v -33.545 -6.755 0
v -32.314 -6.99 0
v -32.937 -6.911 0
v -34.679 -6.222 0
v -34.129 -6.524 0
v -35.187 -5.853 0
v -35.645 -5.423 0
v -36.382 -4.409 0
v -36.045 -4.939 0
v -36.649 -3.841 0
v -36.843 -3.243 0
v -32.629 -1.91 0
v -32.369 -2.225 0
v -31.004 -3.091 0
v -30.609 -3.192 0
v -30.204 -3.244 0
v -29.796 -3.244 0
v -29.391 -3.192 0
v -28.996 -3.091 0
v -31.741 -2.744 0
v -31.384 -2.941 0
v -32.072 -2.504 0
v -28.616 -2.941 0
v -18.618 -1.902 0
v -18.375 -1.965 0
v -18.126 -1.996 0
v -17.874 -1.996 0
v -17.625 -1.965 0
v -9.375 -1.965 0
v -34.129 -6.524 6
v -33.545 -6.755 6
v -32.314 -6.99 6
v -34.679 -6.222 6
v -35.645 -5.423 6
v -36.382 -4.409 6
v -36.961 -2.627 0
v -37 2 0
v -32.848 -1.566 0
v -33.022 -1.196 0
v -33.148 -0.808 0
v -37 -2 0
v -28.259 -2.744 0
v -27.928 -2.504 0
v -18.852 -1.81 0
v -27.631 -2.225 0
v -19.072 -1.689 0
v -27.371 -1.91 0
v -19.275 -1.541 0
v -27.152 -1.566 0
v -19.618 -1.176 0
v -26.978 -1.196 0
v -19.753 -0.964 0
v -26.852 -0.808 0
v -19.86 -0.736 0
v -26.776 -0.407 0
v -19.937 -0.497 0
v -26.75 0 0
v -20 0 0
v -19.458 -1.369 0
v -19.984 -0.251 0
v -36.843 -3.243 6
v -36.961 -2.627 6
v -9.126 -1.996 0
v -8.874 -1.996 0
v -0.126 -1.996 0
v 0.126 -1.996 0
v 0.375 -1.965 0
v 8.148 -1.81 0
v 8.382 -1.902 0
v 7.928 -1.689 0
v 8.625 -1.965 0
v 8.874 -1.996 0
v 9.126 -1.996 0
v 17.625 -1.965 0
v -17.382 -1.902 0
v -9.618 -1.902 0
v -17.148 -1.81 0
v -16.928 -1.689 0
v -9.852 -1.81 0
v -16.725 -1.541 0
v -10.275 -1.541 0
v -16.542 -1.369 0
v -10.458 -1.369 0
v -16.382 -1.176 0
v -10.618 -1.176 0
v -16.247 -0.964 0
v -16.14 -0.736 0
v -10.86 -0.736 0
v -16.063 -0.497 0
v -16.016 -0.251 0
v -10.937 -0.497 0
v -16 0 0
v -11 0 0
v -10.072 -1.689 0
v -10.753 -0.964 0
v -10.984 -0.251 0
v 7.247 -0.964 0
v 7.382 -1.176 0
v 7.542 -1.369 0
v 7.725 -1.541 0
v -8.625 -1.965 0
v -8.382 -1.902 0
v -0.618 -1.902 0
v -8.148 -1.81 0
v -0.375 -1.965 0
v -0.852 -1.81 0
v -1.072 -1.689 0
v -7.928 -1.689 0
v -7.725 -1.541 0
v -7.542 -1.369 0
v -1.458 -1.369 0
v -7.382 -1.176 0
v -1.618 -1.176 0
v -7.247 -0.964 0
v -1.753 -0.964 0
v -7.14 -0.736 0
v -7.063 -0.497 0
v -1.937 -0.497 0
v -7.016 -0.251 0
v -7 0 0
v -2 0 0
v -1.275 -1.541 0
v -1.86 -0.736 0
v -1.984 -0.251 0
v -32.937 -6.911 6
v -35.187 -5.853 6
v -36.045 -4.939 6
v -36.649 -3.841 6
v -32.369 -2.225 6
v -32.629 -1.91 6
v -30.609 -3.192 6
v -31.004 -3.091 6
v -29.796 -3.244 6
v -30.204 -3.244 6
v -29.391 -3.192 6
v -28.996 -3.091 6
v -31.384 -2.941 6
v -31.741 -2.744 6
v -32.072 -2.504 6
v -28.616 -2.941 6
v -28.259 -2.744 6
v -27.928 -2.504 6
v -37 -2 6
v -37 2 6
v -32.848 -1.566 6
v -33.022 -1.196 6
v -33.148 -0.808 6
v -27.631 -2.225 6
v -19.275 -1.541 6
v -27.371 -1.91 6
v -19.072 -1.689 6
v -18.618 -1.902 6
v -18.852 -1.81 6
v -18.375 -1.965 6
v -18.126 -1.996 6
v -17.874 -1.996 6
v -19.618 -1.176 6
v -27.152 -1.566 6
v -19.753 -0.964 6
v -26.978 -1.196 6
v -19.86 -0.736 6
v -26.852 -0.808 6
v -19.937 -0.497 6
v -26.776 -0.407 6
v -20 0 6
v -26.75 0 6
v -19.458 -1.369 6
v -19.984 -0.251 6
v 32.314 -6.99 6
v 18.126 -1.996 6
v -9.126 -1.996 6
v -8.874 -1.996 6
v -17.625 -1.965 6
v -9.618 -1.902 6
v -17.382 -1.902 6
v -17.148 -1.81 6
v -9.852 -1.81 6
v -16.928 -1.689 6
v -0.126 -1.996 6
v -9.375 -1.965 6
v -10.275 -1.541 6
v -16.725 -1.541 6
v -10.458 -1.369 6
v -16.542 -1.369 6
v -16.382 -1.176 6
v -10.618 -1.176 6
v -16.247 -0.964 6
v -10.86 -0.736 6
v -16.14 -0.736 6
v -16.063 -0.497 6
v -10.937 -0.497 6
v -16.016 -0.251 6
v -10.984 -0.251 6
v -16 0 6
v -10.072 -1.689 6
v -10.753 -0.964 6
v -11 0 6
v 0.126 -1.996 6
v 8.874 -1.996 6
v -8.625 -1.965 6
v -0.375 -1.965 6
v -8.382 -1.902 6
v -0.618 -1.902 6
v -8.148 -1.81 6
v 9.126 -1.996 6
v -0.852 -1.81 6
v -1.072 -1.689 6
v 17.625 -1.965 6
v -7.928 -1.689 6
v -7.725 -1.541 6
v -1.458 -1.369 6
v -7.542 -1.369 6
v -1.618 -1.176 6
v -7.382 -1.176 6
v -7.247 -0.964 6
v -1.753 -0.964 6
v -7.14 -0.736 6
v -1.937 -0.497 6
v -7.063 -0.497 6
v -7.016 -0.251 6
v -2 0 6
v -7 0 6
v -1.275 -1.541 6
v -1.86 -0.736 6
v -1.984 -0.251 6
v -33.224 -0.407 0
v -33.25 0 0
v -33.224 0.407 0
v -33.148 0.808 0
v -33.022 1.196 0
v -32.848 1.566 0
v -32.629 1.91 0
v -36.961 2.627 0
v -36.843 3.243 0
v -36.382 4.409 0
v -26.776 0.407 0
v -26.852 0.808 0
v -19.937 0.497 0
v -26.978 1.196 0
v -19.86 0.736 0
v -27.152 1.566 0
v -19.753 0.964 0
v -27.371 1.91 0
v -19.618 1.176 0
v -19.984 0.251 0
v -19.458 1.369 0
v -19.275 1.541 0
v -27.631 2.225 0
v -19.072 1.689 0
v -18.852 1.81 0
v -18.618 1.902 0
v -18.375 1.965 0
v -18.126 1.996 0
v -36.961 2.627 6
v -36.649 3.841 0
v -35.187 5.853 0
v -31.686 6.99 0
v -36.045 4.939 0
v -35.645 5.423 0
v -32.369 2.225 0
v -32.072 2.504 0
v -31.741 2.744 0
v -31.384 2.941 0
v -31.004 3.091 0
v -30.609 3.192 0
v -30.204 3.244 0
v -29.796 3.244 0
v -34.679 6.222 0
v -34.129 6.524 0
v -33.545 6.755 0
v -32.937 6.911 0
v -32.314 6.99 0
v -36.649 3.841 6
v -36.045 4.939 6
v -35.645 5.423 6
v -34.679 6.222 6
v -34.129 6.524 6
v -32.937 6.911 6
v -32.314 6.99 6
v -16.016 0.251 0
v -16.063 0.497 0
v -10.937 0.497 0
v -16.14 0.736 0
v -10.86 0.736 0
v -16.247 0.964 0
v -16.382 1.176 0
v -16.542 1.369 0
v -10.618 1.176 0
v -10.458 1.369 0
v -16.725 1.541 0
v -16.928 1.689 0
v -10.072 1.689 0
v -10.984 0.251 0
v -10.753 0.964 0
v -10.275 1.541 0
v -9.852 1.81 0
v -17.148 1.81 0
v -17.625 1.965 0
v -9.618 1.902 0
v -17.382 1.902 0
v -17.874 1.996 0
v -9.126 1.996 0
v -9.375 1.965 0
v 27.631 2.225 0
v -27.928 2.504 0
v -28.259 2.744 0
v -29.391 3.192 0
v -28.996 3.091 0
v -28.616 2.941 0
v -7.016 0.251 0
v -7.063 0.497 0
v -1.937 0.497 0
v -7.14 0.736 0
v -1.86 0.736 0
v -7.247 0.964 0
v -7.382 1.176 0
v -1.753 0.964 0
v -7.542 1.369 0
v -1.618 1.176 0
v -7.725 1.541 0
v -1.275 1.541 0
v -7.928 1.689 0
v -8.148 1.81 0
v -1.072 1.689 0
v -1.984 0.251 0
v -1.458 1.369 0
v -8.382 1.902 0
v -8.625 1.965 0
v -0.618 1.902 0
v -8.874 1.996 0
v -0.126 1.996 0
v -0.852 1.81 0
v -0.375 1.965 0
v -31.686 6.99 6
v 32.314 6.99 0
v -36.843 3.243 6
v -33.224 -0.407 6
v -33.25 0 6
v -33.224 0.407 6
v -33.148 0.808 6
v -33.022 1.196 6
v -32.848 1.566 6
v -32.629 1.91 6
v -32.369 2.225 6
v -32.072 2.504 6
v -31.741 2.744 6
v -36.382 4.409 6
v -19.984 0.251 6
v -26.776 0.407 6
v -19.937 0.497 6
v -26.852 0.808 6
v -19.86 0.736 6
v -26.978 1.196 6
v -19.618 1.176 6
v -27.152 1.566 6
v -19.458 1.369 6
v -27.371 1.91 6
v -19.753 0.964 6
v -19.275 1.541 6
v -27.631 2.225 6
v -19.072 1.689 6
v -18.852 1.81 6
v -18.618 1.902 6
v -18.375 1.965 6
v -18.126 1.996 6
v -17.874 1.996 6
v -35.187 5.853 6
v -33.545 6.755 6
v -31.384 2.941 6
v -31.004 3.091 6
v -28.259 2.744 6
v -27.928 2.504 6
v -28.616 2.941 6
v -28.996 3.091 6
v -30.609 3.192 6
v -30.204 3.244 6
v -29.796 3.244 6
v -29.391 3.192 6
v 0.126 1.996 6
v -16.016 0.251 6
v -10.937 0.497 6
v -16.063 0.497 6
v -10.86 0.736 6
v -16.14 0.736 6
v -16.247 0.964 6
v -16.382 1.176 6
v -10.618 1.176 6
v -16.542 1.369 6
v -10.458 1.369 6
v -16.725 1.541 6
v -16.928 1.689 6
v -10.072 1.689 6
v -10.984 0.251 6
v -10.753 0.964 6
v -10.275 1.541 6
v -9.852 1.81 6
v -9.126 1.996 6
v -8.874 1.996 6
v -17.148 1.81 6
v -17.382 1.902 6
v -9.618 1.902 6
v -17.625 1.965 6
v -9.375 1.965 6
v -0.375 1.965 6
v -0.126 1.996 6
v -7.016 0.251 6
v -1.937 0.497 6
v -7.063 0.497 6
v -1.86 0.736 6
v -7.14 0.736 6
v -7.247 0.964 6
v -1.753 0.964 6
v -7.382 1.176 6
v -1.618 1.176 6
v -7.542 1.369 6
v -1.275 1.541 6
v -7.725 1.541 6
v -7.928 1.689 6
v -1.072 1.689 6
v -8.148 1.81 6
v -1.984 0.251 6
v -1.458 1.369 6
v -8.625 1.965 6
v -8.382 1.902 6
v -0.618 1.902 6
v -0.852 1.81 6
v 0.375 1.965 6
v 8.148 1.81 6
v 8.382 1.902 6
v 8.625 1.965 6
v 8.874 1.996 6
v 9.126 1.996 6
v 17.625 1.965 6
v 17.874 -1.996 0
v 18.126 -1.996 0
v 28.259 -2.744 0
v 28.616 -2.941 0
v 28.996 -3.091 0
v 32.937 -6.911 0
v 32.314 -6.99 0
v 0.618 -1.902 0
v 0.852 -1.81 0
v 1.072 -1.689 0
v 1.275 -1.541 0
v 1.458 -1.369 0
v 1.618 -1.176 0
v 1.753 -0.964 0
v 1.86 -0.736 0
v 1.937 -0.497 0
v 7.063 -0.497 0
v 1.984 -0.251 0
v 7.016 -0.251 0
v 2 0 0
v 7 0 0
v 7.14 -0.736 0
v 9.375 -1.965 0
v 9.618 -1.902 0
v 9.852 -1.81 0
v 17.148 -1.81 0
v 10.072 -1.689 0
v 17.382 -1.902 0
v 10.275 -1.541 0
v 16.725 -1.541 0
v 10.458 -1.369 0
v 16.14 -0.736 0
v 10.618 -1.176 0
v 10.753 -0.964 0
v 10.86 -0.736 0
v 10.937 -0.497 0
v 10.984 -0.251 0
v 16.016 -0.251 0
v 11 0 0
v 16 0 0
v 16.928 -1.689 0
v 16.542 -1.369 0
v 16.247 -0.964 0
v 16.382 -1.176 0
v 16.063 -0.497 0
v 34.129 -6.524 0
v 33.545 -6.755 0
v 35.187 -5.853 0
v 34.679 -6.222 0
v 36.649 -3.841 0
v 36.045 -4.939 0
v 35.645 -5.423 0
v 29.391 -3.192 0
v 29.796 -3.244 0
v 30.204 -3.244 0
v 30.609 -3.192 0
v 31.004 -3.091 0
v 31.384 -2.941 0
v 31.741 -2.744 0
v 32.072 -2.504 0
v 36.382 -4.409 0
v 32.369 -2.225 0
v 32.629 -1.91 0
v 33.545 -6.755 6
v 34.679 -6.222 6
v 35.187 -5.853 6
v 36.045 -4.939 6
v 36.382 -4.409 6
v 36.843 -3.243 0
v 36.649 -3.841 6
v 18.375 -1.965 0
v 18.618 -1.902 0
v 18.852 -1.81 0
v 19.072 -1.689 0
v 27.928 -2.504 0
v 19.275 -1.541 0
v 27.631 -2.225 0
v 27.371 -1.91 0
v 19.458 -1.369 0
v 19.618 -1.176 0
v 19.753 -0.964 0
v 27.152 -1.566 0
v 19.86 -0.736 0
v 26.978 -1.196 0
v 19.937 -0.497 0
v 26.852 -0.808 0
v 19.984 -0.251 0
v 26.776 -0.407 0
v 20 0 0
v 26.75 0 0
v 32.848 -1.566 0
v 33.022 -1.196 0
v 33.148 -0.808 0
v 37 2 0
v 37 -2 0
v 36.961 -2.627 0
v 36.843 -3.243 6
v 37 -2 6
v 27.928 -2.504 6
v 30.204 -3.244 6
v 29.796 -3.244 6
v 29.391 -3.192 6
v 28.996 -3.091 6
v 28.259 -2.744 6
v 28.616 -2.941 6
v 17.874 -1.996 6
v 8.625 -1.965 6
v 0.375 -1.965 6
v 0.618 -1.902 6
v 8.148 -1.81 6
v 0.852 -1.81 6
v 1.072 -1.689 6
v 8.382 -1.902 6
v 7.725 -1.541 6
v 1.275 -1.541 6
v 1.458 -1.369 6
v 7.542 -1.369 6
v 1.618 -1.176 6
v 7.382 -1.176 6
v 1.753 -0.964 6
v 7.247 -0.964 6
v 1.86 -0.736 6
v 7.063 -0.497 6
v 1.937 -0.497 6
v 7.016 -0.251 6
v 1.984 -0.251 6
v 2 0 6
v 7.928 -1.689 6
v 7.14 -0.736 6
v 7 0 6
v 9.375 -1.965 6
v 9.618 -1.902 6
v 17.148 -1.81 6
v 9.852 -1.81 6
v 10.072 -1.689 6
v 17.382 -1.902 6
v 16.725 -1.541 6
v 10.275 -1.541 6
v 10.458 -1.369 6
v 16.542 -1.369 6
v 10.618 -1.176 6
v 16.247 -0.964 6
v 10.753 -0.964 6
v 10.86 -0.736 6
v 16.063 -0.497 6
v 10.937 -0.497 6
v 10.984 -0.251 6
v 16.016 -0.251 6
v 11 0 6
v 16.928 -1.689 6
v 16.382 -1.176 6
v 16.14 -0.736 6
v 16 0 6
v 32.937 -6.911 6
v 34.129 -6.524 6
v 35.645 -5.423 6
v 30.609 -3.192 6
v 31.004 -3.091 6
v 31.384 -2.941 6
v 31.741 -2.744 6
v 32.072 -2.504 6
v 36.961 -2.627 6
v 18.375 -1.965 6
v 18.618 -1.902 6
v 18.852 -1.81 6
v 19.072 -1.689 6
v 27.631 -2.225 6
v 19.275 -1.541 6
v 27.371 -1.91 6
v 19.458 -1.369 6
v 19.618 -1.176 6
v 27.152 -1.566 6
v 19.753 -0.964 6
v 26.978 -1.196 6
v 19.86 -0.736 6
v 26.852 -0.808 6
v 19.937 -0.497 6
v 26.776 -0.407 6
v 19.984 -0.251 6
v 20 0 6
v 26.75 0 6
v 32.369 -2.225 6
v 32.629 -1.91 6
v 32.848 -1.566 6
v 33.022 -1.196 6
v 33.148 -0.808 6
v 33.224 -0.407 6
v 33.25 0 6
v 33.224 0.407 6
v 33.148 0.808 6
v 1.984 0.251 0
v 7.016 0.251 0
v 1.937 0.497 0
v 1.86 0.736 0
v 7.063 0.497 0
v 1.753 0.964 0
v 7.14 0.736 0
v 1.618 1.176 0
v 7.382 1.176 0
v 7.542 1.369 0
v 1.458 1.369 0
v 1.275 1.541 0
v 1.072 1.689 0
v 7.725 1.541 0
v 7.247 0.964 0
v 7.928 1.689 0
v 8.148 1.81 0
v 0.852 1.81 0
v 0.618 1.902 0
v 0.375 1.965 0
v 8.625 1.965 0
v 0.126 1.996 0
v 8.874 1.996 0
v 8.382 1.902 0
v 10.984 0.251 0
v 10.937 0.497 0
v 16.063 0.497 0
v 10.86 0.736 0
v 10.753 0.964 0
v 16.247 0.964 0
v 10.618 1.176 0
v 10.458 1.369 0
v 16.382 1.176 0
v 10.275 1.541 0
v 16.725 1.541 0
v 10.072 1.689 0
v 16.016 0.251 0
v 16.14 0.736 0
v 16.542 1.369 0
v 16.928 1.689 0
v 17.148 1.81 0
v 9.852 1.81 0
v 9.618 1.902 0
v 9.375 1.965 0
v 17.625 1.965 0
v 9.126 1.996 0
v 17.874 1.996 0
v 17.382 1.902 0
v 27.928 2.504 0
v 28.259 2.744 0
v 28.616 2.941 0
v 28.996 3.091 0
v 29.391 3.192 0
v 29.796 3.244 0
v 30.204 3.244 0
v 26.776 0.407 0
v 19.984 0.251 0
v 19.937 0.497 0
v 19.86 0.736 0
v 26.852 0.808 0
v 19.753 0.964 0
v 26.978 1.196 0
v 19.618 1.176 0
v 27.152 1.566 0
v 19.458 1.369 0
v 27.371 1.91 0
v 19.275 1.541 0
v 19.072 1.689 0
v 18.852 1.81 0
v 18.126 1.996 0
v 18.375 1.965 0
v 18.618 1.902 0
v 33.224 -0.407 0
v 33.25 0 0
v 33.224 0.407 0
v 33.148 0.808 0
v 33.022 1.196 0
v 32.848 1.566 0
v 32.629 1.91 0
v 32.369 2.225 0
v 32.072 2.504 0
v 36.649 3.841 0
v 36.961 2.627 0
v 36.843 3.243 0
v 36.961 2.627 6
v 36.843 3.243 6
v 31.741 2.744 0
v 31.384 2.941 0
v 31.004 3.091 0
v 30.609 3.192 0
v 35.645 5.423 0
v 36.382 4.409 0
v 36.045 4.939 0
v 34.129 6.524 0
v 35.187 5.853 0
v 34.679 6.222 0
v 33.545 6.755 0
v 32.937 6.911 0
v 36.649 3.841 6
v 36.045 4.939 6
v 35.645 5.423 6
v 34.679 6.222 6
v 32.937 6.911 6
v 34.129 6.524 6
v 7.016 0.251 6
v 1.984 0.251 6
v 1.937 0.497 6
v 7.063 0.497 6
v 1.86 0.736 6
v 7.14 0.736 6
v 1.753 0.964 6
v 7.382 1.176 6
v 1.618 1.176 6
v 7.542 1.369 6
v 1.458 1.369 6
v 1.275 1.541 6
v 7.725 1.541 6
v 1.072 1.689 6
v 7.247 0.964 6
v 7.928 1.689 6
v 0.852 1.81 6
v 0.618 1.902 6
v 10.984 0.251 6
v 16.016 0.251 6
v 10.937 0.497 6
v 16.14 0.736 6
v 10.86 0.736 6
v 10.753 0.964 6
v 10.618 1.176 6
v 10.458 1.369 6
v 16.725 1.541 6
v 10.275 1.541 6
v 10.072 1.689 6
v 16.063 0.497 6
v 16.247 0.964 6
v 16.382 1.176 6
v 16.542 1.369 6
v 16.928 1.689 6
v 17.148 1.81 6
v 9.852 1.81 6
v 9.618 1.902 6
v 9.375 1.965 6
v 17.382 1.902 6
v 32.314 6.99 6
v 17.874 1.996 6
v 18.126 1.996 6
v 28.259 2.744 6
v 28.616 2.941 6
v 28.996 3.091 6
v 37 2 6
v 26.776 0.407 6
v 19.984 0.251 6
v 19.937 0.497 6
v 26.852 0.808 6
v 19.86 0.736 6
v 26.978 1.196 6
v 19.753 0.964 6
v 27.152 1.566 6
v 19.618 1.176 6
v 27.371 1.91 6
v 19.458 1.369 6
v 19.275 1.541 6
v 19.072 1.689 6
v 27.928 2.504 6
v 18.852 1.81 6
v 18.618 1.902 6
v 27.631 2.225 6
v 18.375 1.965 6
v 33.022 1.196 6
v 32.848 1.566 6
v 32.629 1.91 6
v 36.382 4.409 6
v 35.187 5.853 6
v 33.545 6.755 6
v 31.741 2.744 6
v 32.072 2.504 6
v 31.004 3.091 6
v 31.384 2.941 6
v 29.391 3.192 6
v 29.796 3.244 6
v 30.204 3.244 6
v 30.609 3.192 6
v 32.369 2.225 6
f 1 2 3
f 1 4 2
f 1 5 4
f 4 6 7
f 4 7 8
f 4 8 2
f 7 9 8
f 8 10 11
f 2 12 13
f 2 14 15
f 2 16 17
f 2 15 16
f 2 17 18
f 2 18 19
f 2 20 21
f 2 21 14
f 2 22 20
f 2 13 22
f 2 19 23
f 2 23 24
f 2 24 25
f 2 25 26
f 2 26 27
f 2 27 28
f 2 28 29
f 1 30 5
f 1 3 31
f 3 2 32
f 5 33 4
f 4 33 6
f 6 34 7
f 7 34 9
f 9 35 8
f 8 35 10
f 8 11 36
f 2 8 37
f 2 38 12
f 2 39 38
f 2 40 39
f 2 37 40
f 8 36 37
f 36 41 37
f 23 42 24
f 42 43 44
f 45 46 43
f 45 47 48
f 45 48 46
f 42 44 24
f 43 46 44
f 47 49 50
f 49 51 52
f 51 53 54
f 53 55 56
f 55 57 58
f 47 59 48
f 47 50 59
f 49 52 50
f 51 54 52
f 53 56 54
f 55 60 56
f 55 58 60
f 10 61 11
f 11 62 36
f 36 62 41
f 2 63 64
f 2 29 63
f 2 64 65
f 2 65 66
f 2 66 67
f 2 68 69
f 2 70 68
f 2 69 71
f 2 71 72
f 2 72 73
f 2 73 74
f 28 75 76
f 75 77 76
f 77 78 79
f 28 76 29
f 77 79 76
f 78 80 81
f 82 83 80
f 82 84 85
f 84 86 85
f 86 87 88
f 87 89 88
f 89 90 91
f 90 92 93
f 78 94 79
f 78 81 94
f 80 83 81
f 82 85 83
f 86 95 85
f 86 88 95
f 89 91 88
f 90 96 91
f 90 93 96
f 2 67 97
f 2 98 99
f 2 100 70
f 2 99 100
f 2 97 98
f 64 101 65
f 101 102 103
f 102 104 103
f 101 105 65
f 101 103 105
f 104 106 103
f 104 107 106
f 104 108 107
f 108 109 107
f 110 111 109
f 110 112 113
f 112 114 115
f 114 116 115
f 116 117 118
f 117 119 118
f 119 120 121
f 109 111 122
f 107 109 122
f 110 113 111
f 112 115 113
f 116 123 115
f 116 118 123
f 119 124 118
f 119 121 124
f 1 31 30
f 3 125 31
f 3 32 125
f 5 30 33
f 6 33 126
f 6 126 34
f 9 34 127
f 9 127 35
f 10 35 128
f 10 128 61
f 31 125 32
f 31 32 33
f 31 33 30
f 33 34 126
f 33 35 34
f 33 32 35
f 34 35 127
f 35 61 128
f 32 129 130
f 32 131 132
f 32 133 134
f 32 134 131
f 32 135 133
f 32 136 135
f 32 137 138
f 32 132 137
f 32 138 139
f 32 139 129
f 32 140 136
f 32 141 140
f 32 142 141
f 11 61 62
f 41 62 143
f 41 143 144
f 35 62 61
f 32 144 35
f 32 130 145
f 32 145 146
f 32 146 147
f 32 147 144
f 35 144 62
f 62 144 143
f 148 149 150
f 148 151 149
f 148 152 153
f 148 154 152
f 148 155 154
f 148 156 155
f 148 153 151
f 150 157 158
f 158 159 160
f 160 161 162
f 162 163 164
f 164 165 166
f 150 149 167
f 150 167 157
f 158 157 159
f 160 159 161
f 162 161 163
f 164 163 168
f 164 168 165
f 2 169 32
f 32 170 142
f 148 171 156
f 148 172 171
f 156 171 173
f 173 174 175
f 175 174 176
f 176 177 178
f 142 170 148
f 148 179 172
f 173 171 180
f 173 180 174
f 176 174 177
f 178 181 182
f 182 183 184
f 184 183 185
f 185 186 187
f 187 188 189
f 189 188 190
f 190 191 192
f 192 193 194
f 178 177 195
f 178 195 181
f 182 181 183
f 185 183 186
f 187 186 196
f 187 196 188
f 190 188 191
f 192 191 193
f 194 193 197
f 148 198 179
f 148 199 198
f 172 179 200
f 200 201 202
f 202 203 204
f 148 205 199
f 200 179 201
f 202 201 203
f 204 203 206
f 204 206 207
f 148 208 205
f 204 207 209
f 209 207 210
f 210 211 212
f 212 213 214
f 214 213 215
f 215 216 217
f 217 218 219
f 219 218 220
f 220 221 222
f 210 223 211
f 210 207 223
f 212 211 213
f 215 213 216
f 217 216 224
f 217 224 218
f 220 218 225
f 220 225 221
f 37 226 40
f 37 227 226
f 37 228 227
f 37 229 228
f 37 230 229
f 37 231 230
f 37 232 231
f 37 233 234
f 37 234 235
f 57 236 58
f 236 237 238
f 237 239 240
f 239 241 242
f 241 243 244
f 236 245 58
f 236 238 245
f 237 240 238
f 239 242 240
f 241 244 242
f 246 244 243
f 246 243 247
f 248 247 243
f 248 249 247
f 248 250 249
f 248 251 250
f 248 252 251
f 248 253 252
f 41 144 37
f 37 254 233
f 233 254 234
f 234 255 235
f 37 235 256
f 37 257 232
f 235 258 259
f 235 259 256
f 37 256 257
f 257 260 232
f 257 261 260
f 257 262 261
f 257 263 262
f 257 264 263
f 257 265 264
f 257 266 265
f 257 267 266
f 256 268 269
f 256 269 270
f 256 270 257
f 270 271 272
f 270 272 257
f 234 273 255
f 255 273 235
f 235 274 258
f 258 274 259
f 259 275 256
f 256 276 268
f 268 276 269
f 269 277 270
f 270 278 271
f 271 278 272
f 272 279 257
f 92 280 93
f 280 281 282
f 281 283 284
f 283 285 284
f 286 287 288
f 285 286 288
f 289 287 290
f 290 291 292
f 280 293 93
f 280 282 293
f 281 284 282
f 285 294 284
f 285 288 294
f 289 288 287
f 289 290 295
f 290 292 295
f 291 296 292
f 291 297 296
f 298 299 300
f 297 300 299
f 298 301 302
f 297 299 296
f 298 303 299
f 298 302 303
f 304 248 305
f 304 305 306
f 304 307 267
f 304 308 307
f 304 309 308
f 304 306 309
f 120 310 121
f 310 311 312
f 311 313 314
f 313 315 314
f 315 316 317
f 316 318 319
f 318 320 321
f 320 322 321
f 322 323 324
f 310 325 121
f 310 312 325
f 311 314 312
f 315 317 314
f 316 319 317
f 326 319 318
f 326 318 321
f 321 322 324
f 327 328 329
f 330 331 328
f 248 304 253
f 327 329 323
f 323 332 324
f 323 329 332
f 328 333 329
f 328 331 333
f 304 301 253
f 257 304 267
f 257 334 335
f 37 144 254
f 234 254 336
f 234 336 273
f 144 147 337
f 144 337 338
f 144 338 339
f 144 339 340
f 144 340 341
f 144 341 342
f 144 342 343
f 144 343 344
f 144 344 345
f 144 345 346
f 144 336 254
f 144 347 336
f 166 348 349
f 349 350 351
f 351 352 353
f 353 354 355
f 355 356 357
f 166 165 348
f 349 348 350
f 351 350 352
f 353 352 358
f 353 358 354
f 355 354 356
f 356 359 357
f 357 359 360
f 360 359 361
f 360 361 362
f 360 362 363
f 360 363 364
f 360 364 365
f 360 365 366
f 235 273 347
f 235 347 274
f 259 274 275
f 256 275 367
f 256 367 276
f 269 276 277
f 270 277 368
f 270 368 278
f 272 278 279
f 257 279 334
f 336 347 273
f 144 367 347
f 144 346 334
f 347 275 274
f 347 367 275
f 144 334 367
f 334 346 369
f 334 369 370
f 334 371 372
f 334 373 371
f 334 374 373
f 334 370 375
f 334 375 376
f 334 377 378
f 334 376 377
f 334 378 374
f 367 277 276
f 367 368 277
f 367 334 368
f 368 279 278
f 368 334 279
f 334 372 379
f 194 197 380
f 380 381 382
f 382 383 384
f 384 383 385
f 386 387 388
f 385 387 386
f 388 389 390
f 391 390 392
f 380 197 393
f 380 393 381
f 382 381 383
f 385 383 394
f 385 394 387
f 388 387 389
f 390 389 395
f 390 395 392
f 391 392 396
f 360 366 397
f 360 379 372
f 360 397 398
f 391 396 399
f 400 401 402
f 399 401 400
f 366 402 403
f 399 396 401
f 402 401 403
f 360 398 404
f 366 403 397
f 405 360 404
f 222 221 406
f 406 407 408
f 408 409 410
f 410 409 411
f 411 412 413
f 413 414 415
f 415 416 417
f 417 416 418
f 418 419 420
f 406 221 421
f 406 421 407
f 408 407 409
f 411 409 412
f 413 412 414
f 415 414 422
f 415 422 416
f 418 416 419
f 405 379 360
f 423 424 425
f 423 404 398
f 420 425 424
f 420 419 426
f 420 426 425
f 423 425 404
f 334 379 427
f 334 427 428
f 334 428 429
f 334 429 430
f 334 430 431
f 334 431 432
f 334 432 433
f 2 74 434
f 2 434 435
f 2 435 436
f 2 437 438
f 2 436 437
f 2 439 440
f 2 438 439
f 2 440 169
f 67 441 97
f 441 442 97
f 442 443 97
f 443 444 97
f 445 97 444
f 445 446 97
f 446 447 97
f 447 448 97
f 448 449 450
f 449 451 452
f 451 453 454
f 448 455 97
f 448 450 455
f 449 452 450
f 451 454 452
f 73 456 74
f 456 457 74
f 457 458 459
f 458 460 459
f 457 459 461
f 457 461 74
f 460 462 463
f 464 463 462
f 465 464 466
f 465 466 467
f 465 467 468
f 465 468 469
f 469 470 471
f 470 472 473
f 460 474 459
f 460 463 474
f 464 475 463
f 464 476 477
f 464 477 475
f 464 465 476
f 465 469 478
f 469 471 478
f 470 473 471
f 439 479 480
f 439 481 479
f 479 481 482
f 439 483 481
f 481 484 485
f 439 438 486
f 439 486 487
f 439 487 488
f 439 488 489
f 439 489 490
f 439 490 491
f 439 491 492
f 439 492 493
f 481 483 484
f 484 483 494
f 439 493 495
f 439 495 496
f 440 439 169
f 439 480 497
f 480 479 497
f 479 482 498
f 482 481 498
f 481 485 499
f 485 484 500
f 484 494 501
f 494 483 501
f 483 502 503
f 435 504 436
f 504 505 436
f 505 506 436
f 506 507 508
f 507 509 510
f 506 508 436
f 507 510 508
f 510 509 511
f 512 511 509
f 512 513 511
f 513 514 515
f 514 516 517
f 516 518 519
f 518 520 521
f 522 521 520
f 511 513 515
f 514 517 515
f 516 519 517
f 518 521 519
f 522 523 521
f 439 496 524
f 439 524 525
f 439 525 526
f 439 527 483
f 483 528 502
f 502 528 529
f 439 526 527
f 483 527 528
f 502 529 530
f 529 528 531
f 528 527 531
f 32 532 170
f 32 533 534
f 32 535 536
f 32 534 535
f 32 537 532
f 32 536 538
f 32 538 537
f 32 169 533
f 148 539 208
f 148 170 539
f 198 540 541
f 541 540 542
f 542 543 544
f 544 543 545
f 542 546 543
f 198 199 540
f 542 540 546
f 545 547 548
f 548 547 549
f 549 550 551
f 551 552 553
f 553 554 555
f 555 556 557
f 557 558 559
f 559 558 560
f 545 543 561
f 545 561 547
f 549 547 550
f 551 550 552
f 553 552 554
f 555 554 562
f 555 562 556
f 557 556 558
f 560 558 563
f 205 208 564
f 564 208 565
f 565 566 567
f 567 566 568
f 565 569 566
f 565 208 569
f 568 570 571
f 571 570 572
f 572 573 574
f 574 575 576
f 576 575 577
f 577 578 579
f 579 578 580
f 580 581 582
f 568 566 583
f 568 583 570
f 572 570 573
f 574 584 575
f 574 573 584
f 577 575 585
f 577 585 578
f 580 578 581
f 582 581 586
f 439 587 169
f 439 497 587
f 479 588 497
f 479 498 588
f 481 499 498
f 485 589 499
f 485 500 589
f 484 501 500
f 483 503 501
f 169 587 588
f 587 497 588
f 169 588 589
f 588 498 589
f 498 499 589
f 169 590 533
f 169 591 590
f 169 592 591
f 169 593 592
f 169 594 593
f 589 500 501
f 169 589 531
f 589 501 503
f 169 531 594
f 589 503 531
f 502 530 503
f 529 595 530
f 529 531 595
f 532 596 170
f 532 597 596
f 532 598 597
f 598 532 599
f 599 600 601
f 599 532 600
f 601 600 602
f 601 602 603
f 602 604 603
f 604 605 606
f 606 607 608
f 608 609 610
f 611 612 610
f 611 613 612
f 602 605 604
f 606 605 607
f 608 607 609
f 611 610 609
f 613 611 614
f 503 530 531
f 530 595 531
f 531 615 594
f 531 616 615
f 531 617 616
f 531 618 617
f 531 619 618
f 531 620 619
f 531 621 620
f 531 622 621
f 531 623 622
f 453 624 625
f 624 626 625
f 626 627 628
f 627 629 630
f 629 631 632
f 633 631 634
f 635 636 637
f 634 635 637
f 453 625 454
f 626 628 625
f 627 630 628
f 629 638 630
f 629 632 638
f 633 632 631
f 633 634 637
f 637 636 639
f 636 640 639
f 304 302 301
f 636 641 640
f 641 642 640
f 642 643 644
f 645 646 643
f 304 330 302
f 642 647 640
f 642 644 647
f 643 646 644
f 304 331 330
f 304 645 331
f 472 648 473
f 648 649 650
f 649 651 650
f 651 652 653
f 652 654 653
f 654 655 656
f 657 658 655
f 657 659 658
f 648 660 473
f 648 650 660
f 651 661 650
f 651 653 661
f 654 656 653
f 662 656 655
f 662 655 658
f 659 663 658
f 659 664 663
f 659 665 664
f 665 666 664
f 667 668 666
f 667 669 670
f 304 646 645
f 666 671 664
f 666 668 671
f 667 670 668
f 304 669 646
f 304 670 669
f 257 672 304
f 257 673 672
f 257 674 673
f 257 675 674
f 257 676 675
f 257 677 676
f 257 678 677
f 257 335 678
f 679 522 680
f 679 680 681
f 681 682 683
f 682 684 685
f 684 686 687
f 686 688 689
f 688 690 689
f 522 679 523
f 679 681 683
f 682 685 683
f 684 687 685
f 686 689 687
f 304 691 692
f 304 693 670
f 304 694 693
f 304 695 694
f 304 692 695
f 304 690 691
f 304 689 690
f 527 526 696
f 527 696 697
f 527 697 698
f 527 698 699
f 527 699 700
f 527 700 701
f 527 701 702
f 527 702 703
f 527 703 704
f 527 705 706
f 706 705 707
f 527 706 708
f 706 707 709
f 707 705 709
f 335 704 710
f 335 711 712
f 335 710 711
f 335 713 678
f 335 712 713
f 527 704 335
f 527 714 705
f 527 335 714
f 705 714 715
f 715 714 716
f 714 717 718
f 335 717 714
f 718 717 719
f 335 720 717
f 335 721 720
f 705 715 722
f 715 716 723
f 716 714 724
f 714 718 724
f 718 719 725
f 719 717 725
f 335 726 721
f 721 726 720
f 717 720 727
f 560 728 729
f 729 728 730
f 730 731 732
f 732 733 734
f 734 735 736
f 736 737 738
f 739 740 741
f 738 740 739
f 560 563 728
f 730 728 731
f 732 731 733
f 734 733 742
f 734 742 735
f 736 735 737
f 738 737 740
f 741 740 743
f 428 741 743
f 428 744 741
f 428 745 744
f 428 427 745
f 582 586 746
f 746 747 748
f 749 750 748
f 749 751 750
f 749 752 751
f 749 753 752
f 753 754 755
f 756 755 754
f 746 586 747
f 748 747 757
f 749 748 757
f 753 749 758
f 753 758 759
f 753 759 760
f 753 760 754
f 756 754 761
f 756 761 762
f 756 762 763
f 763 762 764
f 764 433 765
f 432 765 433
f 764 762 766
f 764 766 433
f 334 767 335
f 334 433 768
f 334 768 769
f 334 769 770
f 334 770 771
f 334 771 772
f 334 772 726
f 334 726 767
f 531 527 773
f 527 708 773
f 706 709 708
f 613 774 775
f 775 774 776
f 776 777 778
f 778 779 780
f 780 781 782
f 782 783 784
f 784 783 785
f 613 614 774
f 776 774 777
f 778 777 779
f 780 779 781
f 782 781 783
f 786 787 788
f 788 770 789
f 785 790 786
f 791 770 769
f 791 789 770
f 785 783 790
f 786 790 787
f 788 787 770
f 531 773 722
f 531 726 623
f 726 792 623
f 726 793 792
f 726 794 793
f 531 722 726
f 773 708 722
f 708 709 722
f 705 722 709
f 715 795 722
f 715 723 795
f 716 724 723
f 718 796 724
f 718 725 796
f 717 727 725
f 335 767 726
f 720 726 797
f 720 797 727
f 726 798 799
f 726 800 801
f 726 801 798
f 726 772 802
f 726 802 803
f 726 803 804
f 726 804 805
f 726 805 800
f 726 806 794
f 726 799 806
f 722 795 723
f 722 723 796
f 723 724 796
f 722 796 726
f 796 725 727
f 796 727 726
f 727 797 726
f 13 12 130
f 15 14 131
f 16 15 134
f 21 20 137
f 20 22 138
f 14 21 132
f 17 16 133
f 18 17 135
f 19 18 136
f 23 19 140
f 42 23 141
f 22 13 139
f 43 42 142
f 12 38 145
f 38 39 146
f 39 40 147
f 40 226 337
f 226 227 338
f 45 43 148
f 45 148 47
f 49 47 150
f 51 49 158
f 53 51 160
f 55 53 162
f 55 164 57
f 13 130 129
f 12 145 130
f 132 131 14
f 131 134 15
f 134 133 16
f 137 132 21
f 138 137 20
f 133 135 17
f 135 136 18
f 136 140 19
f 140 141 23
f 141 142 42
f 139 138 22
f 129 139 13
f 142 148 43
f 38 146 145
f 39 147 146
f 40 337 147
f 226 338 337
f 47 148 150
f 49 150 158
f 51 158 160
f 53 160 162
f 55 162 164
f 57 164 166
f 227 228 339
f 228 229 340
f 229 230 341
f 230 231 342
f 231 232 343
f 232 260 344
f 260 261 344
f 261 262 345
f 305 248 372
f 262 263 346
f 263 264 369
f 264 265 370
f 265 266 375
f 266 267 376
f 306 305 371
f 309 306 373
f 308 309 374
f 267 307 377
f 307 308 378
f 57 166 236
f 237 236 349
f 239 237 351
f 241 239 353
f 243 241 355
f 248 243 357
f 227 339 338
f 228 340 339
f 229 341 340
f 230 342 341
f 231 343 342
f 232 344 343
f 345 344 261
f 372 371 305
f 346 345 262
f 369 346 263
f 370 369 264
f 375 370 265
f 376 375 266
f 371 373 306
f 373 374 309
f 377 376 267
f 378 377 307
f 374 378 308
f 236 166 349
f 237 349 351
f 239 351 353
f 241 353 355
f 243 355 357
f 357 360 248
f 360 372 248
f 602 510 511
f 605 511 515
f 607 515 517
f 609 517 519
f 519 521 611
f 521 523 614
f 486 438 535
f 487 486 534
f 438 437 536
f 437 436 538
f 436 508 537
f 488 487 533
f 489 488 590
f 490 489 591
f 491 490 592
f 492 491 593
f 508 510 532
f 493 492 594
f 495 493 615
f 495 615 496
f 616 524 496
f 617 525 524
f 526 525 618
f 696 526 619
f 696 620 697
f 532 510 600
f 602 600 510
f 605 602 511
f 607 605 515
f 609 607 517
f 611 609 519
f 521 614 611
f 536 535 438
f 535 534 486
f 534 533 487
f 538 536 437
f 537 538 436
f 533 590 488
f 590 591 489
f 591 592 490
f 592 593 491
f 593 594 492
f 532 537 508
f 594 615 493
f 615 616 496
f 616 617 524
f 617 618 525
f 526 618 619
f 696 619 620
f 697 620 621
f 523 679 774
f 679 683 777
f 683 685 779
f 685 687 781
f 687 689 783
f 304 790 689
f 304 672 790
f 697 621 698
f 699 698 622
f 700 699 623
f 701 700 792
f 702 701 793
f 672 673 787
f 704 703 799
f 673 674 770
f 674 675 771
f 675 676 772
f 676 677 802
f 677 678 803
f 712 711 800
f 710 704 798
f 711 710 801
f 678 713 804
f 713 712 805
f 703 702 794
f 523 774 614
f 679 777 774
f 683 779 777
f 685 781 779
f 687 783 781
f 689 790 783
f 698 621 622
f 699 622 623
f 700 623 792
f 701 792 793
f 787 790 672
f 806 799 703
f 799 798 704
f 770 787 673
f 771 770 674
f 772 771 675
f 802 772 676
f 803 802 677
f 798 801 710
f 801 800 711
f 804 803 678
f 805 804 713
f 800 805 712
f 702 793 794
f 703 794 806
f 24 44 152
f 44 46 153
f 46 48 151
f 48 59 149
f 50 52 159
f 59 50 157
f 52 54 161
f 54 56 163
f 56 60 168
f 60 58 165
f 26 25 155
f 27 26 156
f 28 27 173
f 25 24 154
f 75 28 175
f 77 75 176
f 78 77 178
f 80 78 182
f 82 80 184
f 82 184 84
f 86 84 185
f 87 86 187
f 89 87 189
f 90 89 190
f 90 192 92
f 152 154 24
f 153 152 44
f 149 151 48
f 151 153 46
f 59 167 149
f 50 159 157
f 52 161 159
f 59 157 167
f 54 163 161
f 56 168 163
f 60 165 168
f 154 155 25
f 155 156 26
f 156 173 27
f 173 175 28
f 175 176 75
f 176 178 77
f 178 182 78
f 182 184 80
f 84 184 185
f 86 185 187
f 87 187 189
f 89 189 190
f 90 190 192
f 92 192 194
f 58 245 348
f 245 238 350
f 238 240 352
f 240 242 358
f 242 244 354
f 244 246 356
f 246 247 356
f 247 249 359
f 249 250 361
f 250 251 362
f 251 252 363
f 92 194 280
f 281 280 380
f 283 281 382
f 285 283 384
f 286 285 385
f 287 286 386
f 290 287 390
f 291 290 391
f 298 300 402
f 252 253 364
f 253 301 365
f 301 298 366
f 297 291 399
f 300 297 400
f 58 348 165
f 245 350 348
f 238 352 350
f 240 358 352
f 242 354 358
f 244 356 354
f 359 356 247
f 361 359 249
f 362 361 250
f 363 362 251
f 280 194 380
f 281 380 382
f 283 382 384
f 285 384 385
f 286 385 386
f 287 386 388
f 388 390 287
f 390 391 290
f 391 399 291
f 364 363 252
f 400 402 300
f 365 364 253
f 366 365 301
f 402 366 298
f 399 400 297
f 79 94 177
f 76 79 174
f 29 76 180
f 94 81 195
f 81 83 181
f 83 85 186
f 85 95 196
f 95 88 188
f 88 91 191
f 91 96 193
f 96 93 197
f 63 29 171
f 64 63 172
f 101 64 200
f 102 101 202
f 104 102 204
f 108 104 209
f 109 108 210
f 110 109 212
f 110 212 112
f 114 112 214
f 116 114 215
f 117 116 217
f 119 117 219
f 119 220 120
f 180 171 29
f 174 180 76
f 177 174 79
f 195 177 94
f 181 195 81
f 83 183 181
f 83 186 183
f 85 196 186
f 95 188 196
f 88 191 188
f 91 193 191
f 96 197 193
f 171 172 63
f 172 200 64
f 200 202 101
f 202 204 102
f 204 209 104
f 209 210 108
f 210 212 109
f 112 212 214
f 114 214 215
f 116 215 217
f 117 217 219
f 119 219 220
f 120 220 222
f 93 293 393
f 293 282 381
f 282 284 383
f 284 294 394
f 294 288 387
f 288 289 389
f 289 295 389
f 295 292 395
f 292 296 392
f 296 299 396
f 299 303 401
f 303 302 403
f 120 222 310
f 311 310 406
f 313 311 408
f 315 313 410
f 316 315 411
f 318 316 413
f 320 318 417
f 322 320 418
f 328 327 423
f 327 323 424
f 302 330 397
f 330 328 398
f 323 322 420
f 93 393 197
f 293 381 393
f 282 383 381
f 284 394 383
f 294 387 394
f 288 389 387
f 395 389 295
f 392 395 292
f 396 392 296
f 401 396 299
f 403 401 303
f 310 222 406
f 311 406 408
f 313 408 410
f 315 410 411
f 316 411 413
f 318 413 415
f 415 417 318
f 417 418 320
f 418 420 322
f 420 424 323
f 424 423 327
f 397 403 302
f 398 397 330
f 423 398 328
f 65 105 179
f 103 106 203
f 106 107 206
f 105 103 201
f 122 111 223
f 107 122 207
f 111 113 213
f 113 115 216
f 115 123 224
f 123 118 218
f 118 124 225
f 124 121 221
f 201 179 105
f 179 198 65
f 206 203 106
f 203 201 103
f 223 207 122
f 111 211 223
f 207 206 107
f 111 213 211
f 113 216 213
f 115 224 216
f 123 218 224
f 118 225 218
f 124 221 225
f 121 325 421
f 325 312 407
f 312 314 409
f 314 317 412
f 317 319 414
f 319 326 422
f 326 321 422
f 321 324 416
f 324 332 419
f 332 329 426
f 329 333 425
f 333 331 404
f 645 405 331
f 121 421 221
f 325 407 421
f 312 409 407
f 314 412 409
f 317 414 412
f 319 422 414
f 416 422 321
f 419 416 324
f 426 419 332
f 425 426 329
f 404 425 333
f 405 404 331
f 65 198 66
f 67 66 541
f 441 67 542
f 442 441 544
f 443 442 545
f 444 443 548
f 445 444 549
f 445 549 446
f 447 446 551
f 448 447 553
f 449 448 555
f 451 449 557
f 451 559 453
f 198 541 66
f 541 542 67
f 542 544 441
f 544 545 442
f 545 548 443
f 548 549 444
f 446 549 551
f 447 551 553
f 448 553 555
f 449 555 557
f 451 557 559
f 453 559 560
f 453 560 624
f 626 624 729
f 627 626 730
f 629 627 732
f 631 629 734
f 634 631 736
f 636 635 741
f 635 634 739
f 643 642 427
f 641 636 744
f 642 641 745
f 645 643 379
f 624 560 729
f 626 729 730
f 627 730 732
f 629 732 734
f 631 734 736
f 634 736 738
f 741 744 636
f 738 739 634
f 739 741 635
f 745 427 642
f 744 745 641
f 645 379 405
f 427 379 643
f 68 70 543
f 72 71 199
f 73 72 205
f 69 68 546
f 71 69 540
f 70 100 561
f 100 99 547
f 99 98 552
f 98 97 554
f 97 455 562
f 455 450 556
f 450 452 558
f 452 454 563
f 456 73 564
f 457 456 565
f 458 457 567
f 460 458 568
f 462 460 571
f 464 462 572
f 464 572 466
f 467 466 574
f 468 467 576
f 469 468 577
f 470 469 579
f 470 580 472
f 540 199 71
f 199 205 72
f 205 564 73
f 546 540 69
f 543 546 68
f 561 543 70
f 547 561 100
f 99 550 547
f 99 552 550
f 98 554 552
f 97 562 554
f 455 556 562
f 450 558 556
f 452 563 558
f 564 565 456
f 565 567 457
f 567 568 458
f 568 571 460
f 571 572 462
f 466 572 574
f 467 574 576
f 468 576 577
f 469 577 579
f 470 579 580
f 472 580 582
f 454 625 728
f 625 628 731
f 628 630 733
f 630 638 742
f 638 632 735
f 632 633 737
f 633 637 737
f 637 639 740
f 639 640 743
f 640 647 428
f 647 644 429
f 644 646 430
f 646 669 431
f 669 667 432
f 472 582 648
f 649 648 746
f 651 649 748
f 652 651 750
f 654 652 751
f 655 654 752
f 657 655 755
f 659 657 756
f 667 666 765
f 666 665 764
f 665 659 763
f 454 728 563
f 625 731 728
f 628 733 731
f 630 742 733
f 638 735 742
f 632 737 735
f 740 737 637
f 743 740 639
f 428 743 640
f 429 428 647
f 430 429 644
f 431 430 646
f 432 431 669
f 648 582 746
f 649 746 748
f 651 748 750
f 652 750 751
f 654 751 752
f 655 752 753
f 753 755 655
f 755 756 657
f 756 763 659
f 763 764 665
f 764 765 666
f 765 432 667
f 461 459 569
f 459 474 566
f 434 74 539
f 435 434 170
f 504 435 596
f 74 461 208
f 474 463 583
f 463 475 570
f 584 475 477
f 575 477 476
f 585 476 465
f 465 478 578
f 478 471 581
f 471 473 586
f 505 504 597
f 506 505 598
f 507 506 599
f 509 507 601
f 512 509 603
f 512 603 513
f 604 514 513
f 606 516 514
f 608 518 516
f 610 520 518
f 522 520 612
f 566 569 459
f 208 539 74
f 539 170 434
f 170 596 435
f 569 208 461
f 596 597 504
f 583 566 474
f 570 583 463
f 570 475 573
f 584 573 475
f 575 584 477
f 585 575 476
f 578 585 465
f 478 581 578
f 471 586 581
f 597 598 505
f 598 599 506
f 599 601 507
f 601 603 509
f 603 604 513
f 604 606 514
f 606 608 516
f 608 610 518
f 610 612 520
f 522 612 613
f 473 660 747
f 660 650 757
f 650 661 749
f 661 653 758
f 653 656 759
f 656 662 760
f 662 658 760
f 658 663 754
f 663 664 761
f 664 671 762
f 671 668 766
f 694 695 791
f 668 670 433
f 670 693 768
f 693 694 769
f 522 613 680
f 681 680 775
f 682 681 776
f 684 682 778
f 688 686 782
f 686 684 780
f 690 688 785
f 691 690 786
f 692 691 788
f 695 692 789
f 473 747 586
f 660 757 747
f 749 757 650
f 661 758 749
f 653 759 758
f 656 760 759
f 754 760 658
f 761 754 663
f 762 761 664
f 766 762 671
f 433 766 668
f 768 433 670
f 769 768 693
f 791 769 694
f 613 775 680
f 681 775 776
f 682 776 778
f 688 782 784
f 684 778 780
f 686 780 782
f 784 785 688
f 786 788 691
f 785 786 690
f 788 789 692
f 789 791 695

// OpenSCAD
$fn = 50;

difference() {
	union() {
		hull() {
			translate(v = [-32.0, 2.0, 0]) {
				cylinder(h = 6, r = 5);
			}
			translate(v = [32.0, 2.0, 0]) {
				cylinder(h = 6, r = 5);
			}
			translate(v = [-32.0, -2.0, 0]) {
				cylinder(h = 6, r = 5);
			}
			translate(v = [32.0, -2.0, 0]) {
				cylinder(h = 6, r = 5);
			}
		}
	}
	union() {
		translate(v = [-30.0, 0.0, 0]) {
			cylinder(h = 6, r = 3.25);
		}
		translate(v = [30.0, 0.0, 0]) {
			cylinder(h = 6, r = 3.25);
		}
		translate(v = [-18.0, 0, 0.0]) {
			cylinder(h = 6, r = 2.0);
		}
		translate(v = [-9.0, 0, 0.0]) {
			cylinder(h = 6, r = 2.0);
		}
		cylinder(h = 6, r = 2.0);
		translate(v = [9.0, 0, 0.0]) {
			cylinder(h = 6, r = 2.0);
		}
		translate(v = [18.0, 0, 0.0]) {
			cylinder(h = 6, r = 2.0);
		}
	}
}
